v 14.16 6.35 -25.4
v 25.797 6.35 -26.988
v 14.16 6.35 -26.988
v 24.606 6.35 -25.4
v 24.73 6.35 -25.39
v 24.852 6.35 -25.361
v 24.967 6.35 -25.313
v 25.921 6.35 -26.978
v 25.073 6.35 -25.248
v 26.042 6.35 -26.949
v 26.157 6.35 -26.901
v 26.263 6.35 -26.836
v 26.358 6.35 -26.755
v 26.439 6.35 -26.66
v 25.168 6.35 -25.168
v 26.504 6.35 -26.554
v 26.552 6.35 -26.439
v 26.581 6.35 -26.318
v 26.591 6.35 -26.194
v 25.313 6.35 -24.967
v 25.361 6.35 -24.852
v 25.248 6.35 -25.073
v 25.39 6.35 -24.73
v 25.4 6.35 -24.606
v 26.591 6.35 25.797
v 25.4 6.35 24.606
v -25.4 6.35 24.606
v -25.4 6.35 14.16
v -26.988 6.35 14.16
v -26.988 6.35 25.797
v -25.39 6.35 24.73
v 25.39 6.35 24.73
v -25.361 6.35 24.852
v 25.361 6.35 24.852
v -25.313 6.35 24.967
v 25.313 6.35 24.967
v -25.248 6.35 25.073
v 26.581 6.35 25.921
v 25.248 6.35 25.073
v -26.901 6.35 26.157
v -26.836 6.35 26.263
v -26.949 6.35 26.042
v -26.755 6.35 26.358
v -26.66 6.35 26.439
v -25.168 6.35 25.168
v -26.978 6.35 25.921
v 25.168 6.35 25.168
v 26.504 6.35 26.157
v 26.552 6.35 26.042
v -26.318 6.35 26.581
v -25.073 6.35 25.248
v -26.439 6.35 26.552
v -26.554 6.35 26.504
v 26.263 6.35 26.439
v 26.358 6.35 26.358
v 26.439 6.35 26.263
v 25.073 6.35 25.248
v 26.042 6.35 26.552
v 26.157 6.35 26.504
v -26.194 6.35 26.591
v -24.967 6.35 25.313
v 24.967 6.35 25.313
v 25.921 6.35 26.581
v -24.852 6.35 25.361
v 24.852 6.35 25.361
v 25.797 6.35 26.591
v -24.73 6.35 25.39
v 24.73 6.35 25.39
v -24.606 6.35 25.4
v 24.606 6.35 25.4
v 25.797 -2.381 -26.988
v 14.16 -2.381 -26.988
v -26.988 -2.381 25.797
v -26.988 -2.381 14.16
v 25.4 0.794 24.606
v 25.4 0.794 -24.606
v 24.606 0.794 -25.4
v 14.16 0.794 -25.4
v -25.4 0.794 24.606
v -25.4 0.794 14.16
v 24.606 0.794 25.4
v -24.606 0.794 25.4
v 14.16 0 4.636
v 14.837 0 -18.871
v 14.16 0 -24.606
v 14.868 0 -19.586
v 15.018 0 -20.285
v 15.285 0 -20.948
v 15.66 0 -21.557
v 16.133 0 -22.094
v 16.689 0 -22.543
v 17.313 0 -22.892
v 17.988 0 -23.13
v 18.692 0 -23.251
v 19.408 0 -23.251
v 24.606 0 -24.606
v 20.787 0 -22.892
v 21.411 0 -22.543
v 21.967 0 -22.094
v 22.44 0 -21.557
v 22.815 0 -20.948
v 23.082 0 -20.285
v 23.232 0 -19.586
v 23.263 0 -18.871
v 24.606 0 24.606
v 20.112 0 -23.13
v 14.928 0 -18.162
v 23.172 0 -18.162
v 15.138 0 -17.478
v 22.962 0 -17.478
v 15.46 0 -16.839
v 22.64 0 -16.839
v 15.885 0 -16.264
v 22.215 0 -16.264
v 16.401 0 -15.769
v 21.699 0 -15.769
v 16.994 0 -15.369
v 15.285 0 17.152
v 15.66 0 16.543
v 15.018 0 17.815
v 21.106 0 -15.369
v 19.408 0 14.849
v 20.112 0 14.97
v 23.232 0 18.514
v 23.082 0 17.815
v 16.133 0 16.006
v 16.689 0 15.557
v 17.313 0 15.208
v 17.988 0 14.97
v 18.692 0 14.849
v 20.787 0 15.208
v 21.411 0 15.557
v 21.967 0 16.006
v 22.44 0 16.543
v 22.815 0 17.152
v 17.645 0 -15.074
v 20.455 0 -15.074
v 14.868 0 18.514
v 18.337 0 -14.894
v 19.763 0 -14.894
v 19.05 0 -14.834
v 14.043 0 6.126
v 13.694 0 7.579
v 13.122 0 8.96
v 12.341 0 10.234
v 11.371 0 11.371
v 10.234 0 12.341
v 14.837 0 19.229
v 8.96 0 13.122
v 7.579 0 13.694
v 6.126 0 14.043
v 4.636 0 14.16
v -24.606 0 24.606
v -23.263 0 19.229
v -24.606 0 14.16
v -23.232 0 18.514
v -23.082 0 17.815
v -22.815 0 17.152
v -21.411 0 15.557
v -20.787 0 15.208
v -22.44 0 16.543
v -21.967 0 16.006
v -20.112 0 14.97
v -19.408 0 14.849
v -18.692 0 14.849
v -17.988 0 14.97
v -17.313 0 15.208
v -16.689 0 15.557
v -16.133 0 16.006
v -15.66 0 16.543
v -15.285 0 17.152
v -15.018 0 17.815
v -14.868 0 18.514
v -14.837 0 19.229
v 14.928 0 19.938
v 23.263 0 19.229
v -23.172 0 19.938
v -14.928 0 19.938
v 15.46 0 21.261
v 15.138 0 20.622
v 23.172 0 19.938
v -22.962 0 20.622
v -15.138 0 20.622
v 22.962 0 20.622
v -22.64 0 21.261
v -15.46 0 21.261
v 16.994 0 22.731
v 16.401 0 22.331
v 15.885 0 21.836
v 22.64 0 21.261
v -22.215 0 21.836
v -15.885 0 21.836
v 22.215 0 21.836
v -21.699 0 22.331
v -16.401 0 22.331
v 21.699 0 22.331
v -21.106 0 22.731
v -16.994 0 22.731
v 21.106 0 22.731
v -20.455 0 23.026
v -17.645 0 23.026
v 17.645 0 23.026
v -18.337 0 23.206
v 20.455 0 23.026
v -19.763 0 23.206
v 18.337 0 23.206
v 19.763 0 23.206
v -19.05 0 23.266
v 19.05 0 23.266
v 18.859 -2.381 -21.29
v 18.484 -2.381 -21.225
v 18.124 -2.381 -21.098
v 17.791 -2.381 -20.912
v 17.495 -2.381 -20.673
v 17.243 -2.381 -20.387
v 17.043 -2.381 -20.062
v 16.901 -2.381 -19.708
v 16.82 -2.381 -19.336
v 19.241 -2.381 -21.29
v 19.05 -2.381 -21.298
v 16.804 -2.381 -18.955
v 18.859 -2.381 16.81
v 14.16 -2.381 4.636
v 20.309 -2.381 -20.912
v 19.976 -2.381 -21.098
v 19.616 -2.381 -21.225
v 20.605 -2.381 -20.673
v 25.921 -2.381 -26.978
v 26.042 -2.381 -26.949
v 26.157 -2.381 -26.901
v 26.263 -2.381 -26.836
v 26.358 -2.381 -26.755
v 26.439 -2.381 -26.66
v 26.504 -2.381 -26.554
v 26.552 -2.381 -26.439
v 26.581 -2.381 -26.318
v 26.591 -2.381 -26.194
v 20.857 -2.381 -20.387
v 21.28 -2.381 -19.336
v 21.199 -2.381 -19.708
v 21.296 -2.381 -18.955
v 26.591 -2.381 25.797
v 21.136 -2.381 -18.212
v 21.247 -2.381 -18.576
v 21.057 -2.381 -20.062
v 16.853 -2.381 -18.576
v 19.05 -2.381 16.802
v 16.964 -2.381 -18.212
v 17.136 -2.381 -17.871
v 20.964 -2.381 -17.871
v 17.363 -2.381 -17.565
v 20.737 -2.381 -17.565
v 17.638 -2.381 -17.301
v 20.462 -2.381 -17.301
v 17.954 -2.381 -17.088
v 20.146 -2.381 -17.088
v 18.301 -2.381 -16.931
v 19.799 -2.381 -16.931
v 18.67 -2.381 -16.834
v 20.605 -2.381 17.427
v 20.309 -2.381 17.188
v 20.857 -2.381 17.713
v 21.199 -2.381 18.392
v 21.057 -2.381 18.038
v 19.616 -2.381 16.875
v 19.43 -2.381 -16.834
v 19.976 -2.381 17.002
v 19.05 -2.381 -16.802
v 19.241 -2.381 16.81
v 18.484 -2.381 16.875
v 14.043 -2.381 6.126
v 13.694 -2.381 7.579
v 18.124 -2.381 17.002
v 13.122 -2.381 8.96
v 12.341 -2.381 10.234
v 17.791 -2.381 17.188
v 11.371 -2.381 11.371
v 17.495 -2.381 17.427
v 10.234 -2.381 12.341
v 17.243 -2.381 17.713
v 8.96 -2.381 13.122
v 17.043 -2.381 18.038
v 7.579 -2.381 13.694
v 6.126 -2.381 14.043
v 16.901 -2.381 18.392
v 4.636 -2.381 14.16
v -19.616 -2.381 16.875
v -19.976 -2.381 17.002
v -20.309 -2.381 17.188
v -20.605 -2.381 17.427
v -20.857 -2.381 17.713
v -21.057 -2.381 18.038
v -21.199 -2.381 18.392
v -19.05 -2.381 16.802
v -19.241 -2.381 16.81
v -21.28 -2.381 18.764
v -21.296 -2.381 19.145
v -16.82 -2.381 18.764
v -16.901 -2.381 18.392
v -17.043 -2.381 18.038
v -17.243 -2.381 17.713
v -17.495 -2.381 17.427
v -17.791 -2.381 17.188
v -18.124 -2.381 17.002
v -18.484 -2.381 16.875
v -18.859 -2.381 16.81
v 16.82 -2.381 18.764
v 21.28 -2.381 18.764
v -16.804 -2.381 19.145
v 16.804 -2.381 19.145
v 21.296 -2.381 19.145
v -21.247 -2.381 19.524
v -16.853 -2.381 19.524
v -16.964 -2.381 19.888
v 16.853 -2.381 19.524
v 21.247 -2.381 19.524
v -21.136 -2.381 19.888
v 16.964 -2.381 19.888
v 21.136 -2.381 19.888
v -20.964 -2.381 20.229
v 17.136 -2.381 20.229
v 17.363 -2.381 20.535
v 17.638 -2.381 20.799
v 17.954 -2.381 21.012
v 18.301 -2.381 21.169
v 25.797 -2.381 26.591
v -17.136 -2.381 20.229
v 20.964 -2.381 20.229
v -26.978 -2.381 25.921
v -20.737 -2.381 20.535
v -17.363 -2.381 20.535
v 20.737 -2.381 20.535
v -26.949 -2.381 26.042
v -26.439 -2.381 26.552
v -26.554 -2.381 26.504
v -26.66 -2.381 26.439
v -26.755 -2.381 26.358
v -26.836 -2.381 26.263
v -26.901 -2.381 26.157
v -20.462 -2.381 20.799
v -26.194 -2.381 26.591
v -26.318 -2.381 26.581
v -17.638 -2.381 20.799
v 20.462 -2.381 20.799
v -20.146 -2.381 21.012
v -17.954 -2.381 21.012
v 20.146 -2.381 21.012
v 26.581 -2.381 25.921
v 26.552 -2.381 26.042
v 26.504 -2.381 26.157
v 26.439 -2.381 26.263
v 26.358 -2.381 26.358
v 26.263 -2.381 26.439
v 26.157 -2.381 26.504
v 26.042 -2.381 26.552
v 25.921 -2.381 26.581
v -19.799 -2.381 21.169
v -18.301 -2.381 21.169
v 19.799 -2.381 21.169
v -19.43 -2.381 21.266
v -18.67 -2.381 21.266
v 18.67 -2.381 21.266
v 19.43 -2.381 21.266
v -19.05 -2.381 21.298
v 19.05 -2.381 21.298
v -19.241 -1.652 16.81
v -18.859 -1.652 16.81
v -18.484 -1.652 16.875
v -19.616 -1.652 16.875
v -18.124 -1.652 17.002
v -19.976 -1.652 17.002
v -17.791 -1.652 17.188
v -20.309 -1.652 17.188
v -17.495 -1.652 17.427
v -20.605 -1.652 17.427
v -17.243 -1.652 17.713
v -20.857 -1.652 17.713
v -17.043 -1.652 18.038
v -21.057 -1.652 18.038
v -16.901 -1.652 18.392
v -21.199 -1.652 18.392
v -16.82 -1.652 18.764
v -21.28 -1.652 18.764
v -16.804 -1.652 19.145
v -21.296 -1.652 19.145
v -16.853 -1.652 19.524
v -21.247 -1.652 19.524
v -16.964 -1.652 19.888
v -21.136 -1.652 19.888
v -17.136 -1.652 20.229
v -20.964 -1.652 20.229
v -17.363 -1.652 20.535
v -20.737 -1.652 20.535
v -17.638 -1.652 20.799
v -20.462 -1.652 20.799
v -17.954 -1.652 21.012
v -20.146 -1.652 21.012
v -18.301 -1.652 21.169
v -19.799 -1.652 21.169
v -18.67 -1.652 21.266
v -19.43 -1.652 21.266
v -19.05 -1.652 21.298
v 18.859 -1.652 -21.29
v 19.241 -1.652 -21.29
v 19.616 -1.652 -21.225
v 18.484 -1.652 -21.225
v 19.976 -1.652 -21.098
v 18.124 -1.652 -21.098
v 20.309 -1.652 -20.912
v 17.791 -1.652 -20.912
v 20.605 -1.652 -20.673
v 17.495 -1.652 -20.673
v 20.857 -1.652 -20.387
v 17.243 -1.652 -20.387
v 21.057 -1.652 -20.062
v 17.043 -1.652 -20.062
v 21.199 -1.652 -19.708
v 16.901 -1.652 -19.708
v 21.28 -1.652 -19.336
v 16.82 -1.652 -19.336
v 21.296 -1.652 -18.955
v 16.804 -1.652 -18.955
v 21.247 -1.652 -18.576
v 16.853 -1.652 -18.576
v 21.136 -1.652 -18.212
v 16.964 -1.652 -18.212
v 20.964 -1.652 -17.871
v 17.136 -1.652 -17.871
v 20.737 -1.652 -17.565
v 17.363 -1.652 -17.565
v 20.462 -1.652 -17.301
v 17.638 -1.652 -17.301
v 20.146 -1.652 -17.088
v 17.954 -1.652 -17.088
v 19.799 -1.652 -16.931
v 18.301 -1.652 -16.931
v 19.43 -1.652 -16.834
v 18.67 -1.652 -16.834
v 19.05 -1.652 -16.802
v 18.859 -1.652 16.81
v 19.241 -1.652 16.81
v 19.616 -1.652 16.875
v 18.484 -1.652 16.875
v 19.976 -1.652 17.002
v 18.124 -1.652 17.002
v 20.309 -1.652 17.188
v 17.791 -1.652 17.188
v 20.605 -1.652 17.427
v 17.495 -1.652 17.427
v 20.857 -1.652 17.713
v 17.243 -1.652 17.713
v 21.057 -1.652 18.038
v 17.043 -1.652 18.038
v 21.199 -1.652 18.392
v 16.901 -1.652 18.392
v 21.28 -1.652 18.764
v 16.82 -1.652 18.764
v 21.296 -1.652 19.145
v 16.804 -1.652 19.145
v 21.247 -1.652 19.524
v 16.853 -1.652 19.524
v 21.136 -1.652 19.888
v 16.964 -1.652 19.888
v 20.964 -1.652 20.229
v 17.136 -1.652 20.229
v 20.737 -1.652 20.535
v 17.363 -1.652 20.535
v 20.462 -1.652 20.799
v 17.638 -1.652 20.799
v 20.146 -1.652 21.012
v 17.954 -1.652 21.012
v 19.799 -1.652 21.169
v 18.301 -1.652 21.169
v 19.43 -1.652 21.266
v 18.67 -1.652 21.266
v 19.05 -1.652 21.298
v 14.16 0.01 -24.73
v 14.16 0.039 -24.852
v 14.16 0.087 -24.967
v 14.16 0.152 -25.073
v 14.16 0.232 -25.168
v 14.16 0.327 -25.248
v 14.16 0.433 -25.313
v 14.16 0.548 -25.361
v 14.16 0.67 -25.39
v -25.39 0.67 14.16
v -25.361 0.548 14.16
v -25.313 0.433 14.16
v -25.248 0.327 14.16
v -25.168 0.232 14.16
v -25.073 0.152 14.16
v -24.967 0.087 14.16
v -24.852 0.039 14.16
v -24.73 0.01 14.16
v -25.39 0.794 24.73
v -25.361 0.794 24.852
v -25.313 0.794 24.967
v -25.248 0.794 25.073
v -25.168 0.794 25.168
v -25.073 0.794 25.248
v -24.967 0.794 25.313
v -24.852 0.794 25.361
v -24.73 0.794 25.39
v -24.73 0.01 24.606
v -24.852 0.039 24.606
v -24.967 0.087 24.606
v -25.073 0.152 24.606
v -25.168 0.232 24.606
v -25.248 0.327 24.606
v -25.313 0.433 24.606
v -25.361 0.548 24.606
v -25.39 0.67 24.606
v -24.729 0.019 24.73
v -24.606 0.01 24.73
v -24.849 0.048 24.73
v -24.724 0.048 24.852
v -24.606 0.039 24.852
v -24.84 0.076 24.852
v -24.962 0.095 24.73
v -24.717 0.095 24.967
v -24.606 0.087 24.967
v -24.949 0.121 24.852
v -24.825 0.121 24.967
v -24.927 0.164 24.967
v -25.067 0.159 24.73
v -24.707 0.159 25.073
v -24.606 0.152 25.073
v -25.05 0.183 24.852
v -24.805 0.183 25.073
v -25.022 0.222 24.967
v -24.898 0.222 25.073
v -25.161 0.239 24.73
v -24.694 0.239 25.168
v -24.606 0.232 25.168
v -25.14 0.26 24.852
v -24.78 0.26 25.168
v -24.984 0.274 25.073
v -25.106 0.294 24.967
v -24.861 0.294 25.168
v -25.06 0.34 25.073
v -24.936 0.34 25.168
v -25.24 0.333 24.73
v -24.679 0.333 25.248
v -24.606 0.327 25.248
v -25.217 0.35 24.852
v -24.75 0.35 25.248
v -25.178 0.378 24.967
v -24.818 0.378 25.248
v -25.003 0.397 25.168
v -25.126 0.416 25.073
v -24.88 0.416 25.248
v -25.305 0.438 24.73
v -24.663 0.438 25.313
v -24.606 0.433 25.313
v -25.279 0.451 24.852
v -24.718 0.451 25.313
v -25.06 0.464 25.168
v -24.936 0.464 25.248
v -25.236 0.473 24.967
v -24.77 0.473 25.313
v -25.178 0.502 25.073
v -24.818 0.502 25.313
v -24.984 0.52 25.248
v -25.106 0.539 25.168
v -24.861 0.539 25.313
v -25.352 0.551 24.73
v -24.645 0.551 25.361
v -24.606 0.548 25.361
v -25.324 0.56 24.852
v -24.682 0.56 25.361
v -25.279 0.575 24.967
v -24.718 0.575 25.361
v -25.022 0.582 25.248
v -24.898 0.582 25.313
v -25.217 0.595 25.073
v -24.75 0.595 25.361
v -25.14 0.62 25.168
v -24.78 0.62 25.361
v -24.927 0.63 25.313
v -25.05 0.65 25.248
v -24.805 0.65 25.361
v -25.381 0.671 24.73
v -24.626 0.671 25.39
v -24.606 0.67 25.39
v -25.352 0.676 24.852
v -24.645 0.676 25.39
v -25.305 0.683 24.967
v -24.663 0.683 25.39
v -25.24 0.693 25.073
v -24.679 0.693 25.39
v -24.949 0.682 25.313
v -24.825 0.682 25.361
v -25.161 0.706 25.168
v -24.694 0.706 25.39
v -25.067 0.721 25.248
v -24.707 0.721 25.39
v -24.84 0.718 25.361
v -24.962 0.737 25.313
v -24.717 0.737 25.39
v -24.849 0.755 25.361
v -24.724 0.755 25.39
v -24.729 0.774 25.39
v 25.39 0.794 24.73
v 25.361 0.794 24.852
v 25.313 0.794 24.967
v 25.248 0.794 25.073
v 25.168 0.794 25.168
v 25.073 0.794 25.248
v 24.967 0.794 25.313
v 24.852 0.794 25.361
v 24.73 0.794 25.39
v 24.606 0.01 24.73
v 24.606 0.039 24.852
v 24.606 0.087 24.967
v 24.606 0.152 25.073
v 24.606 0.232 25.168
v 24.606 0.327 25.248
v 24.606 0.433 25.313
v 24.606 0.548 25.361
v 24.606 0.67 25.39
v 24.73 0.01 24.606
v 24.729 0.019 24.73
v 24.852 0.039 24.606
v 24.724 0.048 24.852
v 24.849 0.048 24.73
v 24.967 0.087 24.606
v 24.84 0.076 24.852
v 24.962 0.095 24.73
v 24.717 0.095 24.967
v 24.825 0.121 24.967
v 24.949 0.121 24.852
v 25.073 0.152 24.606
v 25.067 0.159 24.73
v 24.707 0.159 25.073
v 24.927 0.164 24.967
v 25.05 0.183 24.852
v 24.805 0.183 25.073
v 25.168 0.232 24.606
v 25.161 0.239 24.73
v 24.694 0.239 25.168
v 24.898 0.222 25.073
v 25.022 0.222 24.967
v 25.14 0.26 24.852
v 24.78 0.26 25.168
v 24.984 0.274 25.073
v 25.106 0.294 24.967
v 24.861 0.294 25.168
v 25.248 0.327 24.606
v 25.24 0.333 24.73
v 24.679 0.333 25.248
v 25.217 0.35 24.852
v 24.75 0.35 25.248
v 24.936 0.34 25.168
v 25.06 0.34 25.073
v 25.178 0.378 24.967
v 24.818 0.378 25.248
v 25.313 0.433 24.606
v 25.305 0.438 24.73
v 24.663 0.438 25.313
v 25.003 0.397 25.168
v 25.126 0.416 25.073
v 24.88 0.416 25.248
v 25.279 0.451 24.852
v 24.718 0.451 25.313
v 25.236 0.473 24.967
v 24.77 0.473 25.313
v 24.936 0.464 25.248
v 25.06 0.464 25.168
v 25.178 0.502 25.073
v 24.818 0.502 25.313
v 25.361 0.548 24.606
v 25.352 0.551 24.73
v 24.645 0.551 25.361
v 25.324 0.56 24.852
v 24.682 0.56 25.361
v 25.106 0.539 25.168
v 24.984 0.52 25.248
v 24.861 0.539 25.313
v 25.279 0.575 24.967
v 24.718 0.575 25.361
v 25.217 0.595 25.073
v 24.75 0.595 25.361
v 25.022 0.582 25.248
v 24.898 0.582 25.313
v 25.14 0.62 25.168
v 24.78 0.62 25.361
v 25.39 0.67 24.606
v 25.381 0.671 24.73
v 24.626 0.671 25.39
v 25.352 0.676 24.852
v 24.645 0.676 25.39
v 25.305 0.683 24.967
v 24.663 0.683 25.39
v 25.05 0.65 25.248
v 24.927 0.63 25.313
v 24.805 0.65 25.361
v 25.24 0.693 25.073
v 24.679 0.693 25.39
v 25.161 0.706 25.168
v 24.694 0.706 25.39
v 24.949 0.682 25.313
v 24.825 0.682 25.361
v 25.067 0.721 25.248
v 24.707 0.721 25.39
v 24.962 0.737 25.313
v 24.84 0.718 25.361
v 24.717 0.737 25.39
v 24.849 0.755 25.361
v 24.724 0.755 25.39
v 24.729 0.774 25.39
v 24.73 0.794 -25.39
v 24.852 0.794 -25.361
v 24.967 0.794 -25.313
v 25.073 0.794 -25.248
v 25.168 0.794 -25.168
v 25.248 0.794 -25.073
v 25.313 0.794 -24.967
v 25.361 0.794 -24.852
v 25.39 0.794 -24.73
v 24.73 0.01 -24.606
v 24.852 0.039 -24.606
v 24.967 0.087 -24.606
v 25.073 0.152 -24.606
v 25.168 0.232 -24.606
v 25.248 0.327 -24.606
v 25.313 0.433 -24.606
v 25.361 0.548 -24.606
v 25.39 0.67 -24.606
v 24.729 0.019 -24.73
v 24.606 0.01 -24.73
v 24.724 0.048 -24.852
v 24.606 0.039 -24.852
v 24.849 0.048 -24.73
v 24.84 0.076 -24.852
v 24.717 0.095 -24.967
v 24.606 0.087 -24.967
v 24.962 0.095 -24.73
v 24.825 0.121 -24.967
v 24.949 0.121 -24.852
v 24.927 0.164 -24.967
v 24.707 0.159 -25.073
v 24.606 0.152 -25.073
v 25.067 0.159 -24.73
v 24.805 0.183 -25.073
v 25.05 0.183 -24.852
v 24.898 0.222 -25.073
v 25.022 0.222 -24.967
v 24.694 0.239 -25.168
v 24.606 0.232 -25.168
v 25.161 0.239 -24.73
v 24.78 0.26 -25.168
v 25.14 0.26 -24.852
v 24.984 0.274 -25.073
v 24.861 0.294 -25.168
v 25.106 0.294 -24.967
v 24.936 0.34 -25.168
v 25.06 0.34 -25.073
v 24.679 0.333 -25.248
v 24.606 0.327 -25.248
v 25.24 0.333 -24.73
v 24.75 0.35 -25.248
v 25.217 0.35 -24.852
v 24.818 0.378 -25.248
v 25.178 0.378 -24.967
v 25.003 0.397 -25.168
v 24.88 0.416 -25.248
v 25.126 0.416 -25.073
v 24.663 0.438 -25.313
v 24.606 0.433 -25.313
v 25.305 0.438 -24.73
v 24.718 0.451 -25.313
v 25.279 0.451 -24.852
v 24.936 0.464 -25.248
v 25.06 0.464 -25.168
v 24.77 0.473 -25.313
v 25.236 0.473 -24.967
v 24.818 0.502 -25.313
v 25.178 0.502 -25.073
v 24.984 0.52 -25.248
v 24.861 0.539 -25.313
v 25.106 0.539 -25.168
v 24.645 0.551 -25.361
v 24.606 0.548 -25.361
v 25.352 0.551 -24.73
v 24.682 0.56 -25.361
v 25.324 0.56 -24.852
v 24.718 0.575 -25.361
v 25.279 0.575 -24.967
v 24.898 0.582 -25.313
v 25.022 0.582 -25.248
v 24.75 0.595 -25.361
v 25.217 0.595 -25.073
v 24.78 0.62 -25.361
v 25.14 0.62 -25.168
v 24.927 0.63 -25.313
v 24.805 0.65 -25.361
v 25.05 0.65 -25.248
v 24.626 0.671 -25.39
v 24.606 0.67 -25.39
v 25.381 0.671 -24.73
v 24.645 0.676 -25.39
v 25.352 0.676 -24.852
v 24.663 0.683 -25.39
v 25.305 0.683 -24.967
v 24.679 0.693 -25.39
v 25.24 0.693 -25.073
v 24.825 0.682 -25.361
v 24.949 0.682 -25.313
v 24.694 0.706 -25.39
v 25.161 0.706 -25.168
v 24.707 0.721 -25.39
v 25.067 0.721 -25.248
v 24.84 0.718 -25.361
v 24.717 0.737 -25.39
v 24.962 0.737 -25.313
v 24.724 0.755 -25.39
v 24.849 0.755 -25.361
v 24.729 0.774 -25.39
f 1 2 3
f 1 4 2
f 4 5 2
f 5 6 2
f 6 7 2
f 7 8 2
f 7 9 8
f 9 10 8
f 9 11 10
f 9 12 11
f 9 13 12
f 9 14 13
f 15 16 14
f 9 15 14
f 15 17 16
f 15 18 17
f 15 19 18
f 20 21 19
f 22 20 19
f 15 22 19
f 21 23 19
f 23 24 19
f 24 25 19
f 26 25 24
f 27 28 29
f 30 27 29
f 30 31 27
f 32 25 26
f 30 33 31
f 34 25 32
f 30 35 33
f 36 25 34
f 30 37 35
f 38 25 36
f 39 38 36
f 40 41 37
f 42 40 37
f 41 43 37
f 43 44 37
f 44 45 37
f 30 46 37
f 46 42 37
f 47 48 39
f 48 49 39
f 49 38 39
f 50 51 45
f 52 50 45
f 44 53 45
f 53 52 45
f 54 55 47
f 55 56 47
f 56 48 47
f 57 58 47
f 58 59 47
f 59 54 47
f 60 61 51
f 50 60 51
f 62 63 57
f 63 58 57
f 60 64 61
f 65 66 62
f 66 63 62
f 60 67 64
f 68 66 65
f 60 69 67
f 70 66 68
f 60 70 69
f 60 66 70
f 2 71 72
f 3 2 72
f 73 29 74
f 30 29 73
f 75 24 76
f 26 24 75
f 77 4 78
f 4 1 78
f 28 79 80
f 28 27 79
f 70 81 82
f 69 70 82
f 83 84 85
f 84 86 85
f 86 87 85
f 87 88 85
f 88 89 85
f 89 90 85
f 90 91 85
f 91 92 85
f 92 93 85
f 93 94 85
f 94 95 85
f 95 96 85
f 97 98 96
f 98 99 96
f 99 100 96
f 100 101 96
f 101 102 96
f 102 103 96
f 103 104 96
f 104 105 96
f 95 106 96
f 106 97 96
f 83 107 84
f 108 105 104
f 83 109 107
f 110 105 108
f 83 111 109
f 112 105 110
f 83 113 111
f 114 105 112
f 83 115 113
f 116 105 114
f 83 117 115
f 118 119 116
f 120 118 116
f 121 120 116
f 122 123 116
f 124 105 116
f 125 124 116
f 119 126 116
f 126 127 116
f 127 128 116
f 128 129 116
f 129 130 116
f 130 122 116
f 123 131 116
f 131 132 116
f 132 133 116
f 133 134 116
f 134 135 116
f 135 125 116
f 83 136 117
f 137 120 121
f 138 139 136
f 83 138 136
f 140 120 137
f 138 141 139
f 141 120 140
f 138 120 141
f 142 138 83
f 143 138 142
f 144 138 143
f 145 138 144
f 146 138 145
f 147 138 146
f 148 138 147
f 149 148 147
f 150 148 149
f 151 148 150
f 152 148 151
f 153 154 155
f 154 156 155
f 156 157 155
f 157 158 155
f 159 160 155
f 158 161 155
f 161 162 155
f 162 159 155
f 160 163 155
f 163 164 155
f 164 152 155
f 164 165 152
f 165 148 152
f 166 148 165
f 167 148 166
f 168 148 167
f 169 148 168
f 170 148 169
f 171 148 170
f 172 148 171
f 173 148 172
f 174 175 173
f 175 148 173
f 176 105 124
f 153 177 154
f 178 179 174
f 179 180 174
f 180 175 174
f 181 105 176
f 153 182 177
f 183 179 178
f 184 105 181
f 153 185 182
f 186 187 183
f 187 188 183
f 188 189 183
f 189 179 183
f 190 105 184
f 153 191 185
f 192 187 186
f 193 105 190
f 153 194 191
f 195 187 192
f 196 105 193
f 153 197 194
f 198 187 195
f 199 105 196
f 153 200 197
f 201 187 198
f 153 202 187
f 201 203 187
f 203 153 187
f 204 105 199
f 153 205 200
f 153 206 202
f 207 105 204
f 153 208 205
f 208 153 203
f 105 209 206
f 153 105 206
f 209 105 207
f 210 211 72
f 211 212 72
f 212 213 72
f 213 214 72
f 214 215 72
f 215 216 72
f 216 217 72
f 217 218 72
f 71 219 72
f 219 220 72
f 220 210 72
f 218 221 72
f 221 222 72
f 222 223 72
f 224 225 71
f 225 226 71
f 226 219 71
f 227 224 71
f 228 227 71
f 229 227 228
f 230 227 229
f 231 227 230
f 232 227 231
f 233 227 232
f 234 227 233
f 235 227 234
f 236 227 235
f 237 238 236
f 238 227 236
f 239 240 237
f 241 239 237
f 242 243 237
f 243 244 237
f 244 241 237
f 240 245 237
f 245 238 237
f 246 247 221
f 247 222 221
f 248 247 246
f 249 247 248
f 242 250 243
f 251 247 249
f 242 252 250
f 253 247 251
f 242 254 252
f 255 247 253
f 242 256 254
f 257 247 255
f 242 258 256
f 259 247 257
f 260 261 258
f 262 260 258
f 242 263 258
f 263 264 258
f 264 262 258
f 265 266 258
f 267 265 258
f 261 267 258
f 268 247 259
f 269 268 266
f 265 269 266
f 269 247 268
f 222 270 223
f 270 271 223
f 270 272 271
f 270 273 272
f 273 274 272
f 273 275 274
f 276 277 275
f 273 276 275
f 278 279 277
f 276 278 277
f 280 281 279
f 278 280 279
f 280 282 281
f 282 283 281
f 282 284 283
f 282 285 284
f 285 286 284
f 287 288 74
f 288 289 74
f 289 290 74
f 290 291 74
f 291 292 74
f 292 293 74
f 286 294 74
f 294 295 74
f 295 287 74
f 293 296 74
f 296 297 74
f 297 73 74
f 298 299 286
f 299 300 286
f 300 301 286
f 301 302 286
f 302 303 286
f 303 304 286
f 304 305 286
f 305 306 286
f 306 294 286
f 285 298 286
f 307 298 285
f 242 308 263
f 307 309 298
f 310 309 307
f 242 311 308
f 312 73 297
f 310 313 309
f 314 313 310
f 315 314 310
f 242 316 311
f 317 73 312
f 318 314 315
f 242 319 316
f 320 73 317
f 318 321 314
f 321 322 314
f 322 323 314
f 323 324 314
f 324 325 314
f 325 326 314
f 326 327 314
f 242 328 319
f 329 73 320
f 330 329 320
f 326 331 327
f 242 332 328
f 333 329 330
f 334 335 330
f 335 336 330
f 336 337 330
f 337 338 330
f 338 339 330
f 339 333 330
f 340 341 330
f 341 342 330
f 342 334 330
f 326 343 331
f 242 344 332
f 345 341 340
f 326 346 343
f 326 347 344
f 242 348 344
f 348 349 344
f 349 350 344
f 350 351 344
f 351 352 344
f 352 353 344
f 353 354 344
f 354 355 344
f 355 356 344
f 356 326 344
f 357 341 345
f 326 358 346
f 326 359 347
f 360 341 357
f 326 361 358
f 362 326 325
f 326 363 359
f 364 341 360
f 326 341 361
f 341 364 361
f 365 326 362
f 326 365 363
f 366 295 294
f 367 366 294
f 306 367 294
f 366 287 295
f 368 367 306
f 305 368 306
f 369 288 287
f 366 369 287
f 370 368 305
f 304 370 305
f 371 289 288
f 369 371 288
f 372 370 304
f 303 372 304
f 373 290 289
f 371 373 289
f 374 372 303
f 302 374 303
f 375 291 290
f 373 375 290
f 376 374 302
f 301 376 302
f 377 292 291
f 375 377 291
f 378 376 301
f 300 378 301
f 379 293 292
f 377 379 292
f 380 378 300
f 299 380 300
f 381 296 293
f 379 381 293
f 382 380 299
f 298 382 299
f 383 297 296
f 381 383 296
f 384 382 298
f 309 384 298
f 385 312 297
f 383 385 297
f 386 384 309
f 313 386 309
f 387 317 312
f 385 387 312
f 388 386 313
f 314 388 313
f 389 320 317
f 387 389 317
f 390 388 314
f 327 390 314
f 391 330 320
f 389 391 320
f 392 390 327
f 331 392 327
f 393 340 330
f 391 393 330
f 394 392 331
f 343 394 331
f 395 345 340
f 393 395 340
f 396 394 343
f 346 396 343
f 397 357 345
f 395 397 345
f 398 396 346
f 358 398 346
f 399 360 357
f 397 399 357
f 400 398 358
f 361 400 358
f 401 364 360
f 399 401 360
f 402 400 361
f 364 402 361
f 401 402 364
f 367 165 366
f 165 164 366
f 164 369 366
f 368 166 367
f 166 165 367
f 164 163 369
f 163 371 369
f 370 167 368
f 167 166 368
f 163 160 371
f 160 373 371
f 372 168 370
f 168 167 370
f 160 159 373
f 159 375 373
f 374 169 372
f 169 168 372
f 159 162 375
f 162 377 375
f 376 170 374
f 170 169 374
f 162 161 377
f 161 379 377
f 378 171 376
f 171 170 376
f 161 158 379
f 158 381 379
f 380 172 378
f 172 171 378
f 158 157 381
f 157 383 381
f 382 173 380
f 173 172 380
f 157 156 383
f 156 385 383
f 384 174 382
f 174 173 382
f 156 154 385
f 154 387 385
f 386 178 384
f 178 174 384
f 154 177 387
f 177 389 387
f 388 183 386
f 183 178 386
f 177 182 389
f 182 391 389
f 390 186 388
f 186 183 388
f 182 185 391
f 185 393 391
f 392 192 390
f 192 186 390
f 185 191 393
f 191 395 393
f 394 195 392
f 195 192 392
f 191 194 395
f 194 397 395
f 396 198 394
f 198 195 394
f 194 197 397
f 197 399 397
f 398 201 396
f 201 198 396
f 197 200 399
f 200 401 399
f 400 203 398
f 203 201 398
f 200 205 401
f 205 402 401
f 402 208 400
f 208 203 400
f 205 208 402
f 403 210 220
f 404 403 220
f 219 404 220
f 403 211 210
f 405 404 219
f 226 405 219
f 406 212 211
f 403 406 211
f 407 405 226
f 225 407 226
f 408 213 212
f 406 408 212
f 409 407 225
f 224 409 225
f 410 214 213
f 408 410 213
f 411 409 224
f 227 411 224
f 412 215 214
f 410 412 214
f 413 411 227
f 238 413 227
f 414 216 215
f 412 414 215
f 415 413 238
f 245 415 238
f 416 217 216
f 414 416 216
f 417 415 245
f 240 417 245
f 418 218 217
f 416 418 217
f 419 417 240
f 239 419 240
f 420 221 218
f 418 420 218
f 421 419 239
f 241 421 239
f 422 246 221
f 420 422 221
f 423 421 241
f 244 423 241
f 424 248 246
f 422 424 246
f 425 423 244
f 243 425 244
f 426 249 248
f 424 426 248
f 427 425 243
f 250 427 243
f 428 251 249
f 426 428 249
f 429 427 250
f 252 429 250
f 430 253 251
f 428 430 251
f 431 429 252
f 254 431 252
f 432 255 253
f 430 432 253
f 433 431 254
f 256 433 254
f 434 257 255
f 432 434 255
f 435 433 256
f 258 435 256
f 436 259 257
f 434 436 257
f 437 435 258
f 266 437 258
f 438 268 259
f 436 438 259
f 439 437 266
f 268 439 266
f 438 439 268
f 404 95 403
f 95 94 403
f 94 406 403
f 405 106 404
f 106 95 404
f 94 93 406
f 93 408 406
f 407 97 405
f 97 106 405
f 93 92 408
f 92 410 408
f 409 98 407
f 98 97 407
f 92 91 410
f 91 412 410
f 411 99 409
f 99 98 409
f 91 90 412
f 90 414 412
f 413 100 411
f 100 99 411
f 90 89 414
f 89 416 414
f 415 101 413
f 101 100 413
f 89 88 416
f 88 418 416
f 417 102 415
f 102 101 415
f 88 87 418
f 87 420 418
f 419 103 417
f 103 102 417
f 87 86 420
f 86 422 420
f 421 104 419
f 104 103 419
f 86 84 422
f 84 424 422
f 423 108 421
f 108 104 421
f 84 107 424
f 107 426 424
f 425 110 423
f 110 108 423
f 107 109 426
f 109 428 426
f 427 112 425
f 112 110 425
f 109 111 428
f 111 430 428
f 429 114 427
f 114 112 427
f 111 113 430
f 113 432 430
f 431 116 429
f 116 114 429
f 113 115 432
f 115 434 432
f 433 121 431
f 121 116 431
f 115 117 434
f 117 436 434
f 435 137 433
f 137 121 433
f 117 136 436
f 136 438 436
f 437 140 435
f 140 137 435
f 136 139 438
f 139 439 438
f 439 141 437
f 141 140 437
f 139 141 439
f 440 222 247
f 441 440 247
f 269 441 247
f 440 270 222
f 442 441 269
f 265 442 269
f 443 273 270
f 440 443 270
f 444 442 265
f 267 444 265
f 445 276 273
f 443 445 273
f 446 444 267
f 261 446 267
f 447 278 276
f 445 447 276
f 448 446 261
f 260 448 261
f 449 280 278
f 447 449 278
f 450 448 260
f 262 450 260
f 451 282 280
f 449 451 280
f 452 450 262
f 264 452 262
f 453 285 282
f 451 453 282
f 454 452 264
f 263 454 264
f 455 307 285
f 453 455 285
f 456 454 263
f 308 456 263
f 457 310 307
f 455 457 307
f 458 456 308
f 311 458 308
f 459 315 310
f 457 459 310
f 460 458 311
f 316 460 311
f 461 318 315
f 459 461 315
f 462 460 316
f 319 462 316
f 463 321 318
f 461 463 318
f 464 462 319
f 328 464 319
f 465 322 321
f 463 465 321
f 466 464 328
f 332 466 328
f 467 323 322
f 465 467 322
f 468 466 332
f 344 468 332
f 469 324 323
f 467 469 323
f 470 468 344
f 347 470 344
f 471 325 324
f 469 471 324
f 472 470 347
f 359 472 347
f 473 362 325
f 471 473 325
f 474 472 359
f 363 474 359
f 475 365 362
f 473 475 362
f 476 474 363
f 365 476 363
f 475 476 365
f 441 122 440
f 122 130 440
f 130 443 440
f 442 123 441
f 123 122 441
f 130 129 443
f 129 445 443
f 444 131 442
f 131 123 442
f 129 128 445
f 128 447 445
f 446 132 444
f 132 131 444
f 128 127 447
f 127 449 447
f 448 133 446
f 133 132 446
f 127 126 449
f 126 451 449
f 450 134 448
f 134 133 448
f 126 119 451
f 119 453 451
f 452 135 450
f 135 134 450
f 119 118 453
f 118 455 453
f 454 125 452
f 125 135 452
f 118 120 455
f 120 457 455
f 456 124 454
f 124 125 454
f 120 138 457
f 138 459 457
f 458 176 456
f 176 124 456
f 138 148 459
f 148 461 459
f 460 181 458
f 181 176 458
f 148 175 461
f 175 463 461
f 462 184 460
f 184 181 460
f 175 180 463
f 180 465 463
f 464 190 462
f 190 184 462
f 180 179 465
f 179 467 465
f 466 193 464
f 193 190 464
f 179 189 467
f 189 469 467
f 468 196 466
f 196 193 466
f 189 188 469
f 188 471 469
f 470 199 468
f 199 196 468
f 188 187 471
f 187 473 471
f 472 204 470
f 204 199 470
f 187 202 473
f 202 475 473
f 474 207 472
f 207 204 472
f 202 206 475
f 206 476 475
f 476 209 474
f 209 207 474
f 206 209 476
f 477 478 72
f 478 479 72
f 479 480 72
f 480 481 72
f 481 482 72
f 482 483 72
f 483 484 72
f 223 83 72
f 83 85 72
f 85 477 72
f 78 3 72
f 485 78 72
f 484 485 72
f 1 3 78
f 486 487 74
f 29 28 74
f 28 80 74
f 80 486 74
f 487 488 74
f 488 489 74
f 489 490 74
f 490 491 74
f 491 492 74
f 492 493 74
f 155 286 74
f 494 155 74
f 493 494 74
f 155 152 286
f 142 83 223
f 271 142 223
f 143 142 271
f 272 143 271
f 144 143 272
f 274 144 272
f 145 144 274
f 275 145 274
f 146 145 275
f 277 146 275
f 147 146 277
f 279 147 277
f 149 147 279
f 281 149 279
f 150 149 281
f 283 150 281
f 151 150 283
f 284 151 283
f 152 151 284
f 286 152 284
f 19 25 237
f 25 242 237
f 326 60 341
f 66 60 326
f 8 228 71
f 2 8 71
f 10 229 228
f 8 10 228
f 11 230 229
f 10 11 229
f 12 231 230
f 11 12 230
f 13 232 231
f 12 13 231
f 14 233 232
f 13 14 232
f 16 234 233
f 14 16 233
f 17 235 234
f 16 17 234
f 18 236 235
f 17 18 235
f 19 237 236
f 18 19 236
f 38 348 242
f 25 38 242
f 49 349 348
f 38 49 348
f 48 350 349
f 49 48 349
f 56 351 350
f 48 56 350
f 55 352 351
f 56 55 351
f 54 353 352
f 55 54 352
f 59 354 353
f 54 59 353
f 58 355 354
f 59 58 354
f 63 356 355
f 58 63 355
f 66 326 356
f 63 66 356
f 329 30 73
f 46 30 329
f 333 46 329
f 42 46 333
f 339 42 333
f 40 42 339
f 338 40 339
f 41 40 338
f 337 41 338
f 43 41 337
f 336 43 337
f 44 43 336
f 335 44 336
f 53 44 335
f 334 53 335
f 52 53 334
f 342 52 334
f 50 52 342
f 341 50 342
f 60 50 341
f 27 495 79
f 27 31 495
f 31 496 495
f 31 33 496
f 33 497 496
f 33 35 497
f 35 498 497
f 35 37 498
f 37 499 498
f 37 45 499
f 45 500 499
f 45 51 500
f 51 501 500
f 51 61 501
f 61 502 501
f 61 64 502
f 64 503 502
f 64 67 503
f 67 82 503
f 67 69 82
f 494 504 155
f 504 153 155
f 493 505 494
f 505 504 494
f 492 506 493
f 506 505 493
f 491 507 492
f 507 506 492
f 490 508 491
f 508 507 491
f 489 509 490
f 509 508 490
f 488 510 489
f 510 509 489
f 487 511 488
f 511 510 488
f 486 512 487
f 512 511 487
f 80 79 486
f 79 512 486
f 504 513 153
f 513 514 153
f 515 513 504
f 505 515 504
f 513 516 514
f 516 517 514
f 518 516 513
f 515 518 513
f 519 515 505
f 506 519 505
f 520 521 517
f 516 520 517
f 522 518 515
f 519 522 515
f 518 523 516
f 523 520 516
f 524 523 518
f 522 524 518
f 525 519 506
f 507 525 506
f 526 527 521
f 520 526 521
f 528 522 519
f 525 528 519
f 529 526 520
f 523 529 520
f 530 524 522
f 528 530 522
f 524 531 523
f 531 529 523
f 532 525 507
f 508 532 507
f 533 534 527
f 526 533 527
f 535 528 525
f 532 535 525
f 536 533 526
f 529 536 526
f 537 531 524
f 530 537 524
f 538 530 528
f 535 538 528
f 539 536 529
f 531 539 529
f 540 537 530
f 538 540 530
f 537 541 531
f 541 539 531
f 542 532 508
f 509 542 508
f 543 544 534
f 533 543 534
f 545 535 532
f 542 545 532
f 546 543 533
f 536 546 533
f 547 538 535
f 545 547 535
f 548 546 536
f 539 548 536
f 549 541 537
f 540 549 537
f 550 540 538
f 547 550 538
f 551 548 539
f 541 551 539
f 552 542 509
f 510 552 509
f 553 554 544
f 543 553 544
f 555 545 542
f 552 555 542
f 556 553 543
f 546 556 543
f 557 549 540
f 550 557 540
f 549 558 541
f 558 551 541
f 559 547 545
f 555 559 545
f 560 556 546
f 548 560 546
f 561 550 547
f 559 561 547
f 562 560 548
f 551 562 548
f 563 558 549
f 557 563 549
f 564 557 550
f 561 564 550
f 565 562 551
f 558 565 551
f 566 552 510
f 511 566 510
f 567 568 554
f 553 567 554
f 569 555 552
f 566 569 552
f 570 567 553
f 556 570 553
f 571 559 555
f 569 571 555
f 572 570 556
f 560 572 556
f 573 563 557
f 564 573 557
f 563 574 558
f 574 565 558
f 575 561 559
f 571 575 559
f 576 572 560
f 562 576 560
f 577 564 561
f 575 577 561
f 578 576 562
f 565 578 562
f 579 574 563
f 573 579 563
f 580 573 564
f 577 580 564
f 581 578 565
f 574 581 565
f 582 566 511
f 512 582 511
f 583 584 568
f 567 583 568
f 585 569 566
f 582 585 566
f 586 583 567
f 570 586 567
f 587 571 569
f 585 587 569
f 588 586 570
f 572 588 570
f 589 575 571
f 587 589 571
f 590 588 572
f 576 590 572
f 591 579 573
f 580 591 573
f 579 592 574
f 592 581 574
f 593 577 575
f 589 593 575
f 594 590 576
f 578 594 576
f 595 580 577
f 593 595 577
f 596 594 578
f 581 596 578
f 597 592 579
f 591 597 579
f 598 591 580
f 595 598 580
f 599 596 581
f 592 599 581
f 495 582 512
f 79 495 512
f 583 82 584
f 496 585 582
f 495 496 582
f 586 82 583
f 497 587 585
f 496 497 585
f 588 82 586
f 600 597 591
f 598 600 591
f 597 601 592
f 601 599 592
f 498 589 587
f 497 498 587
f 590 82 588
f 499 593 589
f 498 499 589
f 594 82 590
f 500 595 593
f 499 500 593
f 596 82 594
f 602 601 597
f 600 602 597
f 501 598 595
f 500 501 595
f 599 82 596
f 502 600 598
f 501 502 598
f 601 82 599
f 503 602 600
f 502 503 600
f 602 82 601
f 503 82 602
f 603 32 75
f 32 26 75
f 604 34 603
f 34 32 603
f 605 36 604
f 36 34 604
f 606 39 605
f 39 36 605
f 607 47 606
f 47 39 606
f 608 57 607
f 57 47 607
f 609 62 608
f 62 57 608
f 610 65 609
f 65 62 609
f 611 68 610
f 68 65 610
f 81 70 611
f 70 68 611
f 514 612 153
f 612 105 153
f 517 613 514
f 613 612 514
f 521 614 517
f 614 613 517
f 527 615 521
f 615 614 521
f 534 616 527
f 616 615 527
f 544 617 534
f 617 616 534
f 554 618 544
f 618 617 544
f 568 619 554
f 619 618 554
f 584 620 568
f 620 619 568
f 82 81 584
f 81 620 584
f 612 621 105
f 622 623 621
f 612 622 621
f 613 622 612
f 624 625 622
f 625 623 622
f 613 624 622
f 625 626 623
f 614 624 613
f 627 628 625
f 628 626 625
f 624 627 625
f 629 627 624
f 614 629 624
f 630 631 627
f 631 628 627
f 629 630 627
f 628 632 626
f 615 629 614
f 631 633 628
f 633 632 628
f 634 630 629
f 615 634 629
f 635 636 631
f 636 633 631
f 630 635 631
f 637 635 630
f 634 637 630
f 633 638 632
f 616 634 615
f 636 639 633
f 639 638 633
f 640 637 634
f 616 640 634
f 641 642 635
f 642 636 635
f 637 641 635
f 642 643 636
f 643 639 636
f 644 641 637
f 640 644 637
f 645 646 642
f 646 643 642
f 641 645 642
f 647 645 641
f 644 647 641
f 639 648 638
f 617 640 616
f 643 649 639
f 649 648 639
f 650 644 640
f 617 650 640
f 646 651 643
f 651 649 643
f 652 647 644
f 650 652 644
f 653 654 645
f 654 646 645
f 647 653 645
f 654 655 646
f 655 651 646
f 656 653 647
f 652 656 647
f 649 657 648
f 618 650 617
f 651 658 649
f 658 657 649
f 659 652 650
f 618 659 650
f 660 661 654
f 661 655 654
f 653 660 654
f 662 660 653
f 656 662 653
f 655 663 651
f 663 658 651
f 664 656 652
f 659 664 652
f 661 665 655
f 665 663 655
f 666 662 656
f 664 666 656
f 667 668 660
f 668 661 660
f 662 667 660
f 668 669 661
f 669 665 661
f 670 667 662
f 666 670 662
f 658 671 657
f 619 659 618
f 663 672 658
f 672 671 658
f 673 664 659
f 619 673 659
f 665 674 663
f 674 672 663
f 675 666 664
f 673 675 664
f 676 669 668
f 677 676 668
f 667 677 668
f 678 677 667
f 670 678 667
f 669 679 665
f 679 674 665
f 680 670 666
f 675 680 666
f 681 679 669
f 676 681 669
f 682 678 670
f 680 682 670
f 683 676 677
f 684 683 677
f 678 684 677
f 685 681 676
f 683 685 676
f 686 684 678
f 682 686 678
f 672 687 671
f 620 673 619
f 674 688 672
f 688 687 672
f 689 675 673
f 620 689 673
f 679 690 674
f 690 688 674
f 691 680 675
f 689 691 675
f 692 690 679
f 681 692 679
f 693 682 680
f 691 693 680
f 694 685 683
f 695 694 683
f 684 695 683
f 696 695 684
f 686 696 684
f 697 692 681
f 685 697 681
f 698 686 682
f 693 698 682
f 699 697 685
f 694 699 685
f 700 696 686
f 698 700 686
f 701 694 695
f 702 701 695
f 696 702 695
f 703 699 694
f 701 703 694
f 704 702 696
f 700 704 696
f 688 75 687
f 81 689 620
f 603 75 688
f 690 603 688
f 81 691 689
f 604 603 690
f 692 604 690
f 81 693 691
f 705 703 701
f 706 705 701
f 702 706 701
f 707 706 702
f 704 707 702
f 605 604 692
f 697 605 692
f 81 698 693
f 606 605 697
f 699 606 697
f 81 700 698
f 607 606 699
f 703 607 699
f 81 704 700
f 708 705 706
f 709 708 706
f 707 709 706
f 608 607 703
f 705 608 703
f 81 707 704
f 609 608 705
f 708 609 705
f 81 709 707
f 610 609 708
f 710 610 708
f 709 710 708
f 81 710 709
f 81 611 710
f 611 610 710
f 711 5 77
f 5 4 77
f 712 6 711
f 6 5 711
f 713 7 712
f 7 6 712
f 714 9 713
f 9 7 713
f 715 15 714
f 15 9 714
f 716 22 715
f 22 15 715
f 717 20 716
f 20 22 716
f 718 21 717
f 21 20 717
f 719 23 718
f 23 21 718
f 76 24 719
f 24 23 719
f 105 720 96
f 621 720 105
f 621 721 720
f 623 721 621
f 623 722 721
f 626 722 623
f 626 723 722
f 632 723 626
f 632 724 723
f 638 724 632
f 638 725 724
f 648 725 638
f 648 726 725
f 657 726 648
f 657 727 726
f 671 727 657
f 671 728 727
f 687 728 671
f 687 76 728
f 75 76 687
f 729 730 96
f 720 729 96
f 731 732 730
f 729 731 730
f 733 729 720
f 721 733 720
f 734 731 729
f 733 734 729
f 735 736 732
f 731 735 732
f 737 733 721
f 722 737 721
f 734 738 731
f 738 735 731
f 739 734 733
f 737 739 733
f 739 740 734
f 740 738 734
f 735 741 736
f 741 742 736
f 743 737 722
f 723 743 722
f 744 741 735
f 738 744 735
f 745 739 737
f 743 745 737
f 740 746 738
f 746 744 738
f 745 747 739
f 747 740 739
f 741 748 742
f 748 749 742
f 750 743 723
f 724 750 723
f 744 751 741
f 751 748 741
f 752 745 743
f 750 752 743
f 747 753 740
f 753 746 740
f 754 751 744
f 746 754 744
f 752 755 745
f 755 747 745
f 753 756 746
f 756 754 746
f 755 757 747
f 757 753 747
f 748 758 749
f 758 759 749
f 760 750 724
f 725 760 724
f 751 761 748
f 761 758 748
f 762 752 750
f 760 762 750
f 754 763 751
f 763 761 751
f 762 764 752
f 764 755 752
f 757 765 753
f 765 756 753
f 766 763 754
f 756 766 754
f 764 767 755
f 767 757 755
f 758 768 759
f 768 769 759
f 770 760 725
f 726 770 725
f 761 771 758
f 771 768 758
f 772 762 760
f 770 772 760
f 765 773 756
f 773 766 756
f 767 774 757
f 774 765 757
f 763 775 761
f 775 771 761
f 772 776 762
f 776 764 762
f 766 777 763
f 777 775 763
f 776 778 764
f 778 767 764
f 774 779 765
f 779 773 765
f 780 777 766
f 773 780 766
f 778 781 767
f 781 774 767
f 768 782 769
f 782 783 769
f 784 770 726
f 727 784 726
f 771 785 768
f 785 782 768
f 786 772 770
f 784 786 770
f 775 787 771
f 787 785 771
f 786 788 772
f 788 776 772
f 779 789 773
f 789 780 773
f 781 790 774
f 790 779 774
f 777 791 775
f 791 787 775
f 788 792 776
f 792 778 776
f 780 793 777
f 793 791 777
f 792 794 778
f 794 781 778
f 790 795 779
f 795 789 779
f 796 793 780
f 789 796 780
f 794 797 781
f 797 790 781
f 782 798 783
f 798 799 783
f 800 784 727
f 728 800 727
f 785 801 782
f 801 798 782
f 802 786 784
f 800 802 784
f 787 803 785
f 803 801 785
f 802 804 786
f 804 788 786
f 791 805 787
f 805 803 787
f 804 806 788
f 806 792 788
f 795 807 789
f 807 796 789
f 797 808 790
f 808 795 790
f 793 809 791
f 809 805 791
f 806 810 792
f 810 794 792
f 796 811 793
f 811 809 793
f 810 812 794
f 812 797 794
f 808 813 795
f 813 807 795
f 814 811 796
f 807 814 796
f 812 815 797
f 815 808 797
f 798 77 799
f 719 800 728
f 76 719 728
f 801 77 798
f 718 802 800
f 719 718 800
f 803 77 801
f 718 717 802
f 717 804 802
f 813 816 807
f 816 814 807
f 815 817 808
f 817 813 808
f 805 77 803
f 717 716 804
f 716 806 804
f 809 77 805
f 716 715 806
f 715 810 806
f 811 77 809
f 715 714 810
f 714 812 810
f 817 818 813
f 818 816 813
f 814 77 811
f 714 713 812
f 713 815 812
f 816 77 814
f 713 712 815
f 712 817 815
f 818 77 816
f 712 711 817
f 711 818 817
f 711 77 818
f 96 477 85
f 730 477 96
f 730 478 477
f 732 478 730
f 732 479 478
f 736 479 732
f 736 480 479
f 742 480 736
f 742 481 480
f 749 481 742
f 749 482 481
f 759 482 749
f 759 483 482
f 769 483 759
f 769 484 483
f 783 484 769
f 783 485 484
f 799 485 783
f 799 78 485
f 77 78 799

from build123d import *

# Parameters (mm, degrees)
SKETCH1_W                                         = 53.975
SKETCH1_H                                         = 53.975
SKETCH1_W_2                                       = 50.8
SKETCH1_H_2                                       = 50.8
BOSS_EXTRUDE1_DEPTH                               = 6.35
SKETCH2_W                                         = 53.975
SKETCH2_H                                         = 53.975
BOSS_EXTRUDE2_DEPTH                               = 2.38125
BOSS_EXTRUDE3_DEPTH                               = 3.2512
BOSS_EXTRUDE3_DEPTH_BACK                          = 1.5875
CSK_FOR_8_FLAT_HEAD_MACHINE_SCREW_100_D           = 4.4958
CSK_FOR_8_FLAT_HEAD_MACHINE_SCREW_100_CSINK_D     = 8.4328
CSK_FOR_8_FLAT_HEAD_MACHINE_SCREW_100_CSINK_ANGLE = 100
SKETCH7_W                                         = 41.148
SKETCH7_H                                         = 41.148
CUT_EXTRUDE1_DEPTH                                = 7.35
CUT_EXTRUDE1_DEPTH_BACK                           = 6.63245
FILLET2_R                                         = 9.525
BOSS_EXTRUDE4_DEPTH                               = 7.14375
CUT_EXTRUDE2_DEPTH                                = 12.98245
FILLET3_R                                         = 0.79375


with BuildPart() as part:
    # Sketch1 → Boss-Extrude1 (new body)
    with BuildSketch(Plane(origin=(0, 0, 0), x_dir=(1, 0, 0), z_dir=(0, 1, 0))):
        Rectangle(SKETCH1_W, SKETCH1_H)
        Rectangle(SKETCH1_W_2, SKETCH1_H_2, mode=Mode.SUBTRACT)
    extrude(amount=BOSS_EXTRUDE1_DEPTH)

    # Sketch2 → Boss-Extrude2 (add)
    with BuildSketch(Plane.XZ):
        Rectangle(SKETCH2_W, SKETCH2_H)
    extrude(amount=BOSS_EXTRUDE2_DEPTH)

    # Sketch3 → Boss-Extrude3 (add, two sides)
    with BuildSketch(Plane.XZ.offset(2.38125)) as boss_extrude3_sk:
        Polygon((-26.9875, 26.590625), (26.590625, 26.590625), (26.590625, -26.9875), (28.178125, -26.9875), (28.178125, 28.178125), (-26.9875, 28.178125), align=None)
    extrude(amount=BOSS_EXTRUDE3_DEPTH)
    extrude(boss_extrude3_sk.sketch, amount=-BOSS_EXTRUDE3_DEPTH_BACK)

    # CSK for #8 Flat Head Machine Screw (100)1 (through all)
    with Locations(Plane(origin=(19.05, 0, 19.05), x_dir=(0, 0, 1), z_dir=(0, 1, 0))):
        with Locations((0, 0), (-38.1, -38.1), (-38.1, 0), (0, -38.1)):
            CounterSinkHole(CSK_FOR_8_FLAT_HEAD_MACHINE_SCREW_100_D / 2, CSK_FOR_8_FLAT_HEAD_MACHINE_SCREW_100_CSINK_D / 2, counter_sink_angle=CSK_FOR_8_FLAT_HEAD_MACHINE_SCREW_100_CSINK_ANGLE)

    # Sketch7 → Cut-Extrude1 (cut, two sides)
    with BuildSketch(Plane(origin=(0, 0, 0), x_dir=(1, 0, 0), z_dir=(0, 1, 0))) as cut_extrude1_sk:
        with Locations((-6.4135, 6.4135)):
            Rectangle(SKETCH7_W, SKETCH7_H)
    extrude(amount=CUT_EXTRUDE1_DEPTH, mode=Mode.SUBTRACT)
    extrude(cut_extrude1_sk.sketch, amount=-CUT_EXTRUDE1_DEPTH_BACK, mode=Mode.SUBTRACT)

    # Fillet2
    fillet2_edges = [part.edges().sort_by_distance(p)[0] for p in [
        (14.1605, -1.190625, 14.1605),
    ]]
    fillet(fillet2_edges, radius=FILLET2_R)

    # Sketch8 → Boss-Extrude4 (add)
    with BuildSketch(Plane(origin=(0, -0.79375, 0), x_dir=(1, 0, 0), z_dir=(0, 1, 0))):
        Polygon((28.178125, 26.9875), (26.9875, 26.9875), (26.9875, -26.9875), (-26.9875, -26.9875), (-26.9875, -28.178125), (28.178125, -28.178125), align=None)
    extrude(amount=BOSS_EXTRUDE4_DEPTH)

    # Sketch9 → Cut-Extrude2 (cut, through all)
    with BuildSketch(Plane.XZ.offset(5.63245)):
        Polygon((-26.9875, 28.178125), (-26.9875, 26.590625), (26.590625, 26.590625), (26.590625, -26.9875), (28.178125, -26.9875), (28.178125, 28.178125), align=None)
    extrude(amount=-CUT_EXTRUDE2_DEPTH, mode=Mode.SUBTRACT)

    # Fillet3
    fillet3_edges = [part.edges().sort_by_distance(p)[0] for p in [
        (26.590625, 1.984375, -26.9875),
        (26.590625, 1.984375, 26.590625),
        (-26.9875, 1.984375, 26.590625),
        (25.4, 0, 0),
        (25.4, 3.175, 25.4),
        (19.78025, 0, -25.4),
        (25.4, 3.175, -25.4),
        (0, 0, 25.4),
        (-25.4, 3.175, 25.4),
        (-25.4, 0, 19.78025),
    ]]
    fillet(fillet3_edges, radius=FILLET3_R)


solid = part.part
